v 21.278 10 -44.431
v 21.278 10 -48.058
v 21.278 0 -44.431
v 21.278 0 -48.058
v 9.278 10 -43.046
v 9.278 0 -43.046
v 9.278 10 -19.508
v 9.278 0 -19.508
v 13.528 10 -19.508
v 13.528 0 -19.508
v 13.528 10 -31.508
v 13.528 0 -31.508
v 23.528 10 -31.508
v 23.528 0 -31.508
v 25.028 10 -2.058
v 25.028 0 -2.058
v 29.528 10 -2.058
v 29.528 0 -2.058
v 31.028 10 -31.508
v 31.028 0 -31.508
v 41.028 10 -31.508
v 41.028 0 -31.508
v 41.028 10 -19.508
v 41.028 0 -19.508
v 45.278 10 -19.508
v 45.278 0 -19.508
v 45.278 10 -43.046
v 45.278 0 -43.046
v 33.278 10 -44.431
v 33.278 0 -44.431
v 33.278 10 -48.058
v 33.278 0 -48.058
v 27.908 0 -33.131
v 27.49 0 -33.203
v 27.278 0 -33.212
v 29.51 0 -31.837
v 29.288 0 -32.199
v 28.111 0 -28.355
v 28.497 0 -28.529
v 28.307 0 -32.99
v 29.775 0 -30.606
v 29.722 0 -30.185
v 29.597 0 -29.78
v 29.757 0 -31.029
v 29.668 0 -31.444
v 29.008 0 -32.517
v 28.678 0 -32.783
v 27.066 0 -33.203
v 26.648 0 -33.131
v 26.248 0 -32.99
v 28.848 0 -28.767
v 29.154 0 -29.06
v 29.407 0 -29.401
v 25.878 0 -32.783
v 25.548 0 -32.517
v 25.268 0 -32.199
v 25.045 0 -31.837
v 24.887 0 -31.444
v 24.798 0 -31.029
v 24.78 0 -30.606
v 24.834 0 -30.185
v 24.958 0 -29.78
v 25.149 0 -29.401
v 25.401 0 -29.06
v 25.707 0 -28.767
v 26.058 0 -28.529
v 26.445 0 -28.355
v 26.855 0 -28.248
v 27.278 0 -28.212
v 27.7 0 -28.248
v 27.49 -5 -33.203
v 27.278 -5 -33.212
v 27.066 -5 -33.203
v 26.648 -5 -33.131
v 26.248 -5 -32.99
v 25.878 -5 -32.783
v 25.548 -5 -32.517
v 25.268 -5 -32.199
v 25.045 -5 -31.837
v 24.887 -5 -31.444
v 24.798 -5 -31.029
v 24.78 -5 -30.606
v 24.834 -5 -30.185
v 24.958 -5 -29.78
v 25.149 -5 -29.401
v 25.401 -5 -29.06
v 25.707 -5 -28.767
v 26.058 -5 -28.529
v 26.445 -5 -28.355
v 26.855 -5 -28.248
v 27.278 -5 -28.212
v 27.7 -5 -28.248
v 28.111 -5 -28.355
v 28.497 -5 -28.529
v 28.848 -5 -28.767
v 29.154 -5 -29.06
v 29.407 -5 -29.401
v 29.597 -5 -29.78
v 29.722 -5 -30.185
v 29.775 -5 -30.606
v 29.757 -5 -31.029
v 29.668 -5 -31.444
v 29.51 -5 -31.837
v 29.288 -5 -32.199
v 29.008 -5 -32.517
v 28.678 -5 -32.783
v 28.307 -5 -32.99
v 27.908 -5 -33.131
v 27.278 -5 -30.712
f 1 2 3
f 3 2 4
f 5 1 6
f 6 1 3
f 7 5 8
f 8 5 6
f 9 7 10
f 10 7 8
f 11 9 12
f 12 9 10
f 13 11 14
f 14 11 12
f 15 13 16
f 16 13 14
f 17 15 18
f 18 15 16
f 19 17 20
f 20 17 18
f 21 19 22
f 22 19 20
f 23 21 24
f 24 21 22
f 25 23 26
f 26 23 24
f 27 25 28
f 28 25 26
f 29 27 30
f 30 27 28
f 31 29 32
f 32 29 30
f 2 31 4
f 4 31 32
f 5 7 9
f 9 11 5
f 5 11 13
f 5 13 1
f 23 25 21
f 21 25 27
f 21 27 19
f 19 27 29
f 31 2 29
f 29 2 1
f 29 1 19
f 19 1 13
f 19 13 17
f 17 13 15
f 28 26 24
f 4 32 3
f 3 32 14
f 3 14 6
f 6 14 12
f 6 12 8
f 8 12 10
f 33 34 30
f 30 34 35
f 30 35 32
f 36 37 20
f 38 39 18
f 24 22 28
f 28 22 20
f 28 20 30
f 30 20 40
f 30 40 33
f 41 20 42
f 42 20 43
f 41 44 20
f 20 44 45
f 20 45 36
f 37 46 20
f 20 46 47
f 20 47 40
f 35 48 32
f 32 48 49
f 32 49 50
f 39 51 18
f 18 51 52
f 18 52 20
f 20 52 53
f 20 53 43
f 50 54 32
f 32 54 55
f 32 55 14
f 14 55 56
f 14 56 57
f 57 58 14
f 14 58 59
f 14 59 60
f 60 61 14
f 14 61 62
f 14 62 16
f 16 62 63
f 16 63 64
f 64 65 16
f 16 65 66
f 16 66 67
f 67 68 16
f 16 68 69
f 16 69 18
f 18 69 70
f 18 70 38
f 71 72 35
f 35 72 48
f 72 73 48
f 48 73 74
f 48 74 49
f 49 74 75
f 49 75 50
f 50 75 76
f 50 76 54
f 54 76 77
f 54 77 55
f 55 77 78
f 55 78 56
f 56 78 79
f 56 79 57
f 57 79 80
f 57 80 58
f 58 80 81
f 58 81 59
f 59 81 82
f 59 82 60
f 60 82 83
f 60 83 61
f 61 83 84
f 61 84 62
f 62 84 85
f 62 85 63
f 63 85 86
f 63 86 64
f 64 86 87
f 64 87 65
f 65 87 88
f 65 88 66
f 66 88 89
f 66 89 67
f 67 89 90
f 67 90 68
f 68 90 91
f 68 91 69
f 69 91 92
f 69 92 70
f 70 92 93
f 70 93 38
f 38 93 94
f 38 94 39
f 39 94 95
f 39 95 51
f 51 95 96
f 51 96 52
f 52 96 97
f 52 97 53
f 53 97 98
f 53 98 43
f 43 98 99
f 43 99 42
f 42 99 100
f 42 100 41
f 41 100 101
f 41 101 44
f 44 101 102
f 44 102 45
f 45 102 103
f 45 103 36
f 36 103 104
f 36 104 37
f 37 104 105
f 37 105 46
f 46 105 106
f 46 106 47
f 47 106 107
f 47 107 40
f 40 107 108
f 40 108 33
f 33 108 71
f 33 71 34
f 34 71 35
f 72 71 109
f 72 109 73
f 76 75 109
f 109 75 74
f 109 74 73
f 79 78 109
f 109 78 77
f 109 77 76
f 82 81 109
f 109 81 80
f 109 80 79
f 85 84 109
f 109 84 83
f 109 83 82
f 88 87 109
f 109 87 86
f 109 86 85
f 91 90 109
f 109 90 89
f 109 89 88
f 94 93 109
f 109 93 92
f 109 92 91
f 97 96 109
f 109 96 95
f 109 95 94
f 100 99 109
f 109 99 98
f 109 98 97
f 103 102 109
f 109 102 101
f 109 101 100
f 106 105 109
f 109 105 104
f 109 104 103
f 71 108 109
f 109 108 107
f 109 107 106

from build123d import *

# Parameters (mm, degrees)
BOSS_EXTRUDE1_DEPTH = 10
SKETCH2_R           = 2.5
BOSS_EXTRUDE2_DEPTH = 5


with BuildPart() as part:
    # Sketch1 → Boss-Extrude1 (new body)
    with BuildSketch(Plane(origin=(0, 0, 0), x_dir=(1, 0, 0), z_dir=(0, 1, 0))):
        Polygon((21.277713785, 48.057856326), (33.277713785, 48.057856326), (33.277713785, 44.431129223), (45.277713785, 43.046501314), (45.277713785, 19.507826857), (41.027713785, 19.507826857), (41.027713785, 31.507826857), (31.027713785, 31.507826857), (29.527713785, 2.057856326), (25.027713785, 2.057856326), (23.527713785, 31.507826857), (13.527713785, 31.507826857), (13.527713785, 19.507826857), (9.277713785, 19.507826857), (9.277713785, 43.046501314), (21.277713785, 44.431129223), align=None)
    extrude(amount=BOSS_EXTRUDE1_DEPTH)

    # Sketch2 → Boss-Extrude2 (add)
    with BuildSketch(Plane(origin=(0, 0, 0), x_dir=(-1, 0, 0), z_dir=(0, -1, 0))):
        with Locations((-27.277713785, 30.711934537)):
            Circle(SKETCH2_R)
    extrude(amount=BOSS_EXTRUDE2_DEPTH)


solid = part.part
